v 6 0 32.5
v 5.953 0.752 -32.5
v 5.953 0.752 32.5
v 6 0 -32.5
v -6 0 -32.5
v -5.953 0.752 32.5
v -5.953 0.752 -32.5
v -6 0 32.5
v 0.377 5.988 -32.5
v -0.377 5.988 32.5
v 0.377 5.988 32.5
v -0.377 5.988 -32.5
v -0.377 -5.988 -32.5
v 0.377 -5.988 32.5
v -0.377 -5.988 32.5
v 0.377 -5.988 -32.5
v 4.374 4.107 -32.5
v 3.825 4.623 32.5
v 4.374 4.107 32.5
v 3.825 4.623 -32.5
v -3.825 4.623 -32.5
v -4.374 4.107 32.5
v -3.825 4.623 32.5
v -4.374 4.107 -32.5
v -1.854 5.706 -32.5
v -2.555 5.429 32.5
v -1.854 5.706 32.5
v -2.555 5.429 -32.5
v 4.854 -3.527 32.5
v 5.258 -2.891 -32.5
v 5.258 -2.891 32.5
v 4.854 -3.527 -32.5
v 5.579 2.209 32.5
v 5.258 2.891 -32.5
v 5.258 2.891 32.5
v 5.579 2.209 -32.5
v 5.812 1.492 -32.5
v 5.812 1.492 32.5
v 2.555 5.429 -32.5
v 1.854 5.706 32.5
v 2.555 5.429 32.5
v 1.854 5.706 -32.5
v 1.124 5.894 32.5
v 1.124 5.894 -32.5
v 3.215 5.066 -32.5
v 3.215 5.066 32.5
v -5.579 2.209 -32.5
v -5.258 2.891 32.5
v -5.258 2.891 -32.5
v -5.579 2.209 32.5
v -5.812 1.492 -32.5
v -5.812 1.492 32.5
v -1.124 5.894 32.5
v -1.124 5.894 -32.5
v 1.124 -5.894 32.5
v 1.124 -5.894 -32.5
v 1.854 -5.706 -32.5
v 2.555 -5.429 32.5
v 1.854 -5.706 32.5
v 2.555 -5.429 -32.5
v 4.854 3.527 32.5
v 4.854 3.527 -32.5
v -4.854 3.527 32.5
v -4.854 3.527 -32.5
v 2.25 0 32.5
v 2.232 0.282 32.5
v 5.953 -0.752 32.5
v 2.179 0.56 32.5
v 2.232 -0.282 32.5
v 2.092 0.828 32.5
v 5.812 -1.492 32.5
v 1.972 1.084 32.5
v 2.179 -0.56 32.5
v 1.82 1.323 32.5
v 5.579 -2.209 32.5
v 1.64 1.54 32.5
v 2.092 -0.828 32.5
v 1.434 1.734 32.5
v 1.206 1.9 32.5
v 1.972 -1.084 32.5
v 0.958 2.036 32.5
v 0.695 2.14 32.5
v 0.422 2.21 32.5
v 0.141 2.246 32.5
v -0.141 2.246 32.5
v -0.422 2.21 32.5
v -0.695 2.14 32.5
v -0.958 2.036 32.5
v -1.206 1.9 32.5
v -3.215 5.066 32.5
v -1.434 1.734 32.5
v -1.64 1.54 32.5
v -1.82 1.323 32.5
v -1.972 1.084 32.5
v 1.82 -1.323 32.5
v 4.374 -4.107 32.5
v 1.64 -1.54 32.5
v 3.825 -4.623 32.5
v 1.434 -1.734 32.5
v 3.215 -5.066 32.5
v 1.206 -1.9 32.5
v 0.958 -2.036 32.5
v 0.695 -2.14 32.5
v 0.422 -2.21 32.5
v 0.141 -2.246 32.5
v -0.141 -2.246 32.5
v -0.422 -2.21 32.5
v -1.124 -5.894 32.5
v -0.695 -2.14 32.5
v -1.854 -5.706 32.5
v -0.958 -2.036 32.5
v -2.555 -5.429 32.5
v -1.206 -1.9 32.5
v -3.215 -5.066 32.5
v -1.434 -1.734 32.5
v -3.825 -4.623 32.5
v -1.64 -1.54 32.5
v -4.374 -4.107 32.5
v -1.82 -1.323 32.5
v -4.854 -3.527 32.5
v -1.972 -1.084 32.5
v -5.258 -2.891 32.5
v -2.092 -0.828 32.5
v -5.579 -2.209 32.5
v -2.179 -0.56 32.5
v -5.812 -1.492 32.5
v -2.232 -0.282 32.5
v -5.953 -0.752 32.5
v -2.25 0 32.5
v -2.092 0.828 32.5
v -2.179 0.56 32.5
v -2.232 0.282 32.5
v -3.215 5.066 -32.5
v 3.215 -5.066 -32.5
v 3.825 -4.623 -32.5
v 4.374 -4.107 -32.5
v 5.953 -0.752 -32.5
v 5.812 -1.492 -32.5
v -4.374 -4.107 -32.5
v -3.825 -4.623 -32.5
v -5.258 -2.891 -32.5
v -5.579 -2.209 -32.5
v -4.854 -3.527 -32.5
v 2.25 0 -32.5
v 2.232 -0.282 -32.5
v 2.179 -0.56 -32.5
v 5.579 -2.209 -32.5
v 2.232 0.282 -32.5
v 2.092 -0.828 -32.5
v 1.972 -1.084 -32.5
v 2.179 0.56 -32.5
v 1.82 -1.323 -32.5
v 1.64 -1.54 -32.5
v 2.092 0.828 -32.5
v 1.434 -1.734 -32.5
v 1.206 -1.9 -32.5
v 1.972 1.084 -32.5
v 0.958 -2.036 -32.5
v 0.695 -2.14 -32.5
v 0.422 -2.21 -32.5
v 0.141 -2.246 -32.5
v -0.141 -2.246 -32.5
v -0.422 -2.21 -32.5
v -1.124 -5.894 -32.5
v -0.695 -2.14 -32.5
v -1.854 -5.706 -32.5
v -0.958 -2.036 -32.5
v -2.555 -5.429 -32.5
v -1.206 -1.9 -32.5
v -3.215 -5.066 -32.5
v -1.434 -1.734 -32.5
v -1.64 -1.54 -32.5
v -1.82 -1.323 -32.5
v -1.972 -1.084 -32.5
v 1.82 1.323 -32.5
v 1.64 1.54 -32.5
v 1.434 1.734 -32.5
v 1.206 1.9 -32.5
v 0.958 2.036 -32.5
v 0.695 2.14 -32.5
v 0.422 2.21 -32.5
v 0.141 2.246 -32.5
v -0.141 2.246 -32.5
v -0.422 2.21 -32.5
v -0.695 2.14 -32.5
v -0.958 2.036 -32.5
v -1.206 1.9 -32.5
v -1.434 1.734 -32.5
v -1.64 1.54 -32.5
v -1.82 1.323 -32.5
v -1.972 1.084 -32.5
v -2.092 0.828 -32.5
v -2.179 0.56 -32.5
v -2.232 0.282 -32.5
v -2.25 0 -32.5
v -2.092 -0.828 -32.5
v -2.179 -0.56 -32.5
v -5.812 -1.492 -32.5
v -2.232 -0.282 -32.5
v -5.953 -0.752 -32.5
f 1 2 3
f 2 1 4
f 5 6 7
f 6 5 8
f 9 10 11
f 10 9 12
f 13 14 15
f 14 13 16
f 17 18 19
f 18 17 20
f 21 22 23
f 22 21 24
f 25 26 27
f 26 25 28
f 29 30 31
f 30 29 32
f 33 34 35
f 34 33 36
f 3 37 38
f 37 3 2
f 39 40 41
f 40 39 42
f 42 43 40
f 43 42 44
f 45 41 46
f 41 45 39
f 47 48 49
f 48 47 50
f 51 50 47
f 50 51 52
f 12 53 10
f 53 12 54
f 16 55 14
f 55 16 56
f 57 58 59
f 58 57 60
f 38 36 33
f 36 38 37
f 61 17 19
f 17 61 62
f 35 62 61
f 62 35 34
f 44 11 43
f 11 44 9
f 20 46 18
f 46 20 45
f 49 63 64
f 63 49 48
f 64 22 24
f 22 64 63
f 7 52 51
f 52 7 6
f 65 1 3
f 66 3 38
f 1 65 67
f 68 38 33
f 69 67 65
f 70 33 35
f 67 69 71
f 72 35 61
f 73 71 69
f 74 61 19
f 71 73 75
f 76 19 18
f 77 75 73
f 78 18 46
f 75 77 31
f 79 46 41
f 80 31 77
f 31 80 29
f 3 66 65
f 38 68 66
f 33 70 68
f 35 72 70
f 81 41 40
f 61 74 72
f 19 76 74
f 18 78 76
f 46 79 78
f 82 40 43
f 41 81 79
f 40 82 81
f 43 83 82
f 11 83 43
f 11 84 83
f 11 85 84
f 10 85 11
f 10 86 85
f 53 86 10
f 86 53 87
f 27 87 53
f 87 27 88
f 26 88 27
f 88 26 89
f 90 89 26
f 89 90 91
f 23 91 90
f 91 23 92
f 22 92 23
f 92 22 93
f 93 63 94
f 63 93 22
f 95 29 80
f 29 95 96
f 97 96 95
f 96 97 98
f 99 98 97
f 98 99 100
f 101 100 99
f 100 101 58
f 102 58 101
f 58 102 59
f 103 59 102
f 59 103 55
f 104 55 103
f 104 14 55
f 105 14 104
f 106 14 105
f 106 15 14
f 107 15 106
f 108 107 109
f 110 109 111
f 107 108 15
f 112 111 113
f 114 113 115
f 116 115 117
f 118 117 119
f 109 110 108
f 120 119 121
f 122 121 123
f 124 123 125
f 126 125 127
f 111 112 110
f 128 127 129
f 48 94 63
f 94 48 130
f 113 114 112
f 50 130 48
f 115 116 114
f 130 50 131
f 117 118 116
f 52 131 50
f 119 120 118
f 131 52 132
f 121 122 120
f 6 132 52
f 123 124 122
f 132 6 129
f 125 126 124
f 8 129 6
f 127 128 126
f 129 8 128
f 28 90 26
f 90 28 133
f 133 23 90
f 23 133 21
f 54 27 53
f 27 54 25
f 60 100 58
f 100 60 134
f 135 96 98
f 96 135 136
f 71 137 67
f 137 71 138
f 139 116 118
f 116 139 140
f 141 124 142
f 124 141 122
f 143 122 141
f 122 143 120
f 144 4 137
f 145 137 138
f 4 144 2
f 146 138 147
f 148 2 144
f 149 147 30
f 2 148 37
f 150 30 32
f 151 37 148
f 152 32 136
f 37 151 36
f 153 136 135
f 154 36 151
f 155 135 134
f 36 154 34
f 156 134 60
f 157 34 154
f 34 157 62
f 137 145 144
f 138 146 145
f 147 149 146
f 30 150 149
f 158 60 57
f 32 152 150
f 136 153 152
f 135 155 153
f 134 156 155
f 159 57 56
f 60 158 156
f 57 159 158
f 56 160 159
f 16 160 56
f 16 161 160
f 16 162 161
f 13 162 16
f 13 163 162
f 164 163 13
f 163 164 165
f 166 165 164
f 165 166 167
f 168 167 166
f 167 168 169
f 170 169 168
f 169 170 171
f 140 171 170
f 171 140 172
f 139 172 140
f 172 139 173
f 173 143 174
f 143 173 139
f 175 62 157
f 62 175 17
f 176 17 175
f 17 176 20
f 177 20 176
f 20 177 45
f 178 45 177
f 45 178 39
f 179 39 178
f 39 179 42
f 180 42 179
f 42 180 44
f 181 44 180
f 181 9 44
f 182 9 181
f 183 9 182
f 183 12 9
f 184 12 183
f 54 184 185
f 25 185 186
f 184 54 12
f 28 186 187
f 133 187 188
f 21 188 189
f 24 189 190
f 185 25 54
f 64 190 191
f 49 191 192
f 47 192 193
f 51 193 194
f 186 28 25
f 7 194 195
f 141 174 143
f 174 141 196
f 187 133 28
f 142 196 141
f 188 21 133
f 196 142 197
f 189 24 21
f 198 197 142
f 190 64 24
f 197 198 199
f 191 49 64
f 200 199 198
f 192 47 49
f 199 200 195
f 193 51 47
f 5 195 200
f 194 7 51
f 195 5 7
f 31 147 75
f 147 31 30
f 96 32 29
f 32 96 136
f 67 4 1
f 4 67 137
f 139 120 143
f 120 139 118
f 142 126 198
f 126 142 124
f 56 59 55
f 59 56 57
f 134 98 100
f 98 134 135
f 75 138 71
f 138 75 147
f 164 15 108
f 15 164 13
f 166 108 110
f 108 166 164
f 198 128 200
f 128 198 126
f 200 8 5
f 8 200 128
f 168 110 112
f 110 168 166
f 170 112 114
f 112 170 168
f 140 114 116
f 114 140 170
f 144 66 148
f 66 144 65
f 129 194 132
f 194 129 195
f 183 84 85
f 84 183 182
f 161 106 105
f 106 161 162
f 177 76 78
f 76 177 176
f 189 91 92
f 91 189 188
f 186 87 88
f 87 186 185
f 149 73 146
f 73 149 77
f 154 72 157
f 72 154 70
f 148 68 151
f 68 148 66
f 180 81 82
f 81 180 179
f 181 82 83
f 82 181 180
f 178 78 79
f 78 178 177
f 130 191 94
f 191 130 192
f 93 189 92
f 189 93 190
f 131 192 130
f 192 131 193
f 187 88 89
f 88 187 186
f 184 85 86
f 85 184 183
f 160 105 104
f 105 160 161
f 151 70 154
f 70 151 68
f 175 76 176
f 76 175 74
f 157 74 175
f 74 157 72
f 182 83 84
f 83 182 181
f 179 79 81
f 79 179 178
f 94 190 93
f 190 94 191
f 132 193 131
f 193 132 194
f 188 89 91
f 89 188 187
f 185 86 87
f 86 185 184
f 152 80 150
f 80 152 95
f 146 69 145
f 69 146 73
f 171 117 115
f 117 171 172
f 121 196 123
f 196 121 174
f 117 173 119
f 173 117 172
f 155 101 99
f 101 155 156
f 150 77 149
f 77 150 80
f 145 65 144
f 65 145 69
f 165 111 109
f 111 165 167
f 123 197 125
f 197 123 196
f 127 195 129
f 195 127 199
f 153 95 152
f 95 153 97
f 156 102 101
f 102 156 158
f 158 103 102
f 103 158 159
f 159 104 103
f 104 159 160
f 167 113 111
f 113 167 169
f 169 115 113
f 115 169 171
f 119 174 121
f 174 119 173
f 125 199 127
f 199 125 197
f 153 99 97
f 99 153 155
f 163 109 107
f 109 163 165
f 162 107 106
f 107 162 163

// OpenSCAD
$fn = 50;


difference() {
	union() {
		translate(v = [0, 0, -32.5000000000]) {
			cylinder(h = 65, r = 6.0000000000);
		}
	}
	union() {
		translate(v = [0, 0, -100.0000000000]) {
			cylinder(h = 200, r = 2.2500000000);
		}
	}
}
